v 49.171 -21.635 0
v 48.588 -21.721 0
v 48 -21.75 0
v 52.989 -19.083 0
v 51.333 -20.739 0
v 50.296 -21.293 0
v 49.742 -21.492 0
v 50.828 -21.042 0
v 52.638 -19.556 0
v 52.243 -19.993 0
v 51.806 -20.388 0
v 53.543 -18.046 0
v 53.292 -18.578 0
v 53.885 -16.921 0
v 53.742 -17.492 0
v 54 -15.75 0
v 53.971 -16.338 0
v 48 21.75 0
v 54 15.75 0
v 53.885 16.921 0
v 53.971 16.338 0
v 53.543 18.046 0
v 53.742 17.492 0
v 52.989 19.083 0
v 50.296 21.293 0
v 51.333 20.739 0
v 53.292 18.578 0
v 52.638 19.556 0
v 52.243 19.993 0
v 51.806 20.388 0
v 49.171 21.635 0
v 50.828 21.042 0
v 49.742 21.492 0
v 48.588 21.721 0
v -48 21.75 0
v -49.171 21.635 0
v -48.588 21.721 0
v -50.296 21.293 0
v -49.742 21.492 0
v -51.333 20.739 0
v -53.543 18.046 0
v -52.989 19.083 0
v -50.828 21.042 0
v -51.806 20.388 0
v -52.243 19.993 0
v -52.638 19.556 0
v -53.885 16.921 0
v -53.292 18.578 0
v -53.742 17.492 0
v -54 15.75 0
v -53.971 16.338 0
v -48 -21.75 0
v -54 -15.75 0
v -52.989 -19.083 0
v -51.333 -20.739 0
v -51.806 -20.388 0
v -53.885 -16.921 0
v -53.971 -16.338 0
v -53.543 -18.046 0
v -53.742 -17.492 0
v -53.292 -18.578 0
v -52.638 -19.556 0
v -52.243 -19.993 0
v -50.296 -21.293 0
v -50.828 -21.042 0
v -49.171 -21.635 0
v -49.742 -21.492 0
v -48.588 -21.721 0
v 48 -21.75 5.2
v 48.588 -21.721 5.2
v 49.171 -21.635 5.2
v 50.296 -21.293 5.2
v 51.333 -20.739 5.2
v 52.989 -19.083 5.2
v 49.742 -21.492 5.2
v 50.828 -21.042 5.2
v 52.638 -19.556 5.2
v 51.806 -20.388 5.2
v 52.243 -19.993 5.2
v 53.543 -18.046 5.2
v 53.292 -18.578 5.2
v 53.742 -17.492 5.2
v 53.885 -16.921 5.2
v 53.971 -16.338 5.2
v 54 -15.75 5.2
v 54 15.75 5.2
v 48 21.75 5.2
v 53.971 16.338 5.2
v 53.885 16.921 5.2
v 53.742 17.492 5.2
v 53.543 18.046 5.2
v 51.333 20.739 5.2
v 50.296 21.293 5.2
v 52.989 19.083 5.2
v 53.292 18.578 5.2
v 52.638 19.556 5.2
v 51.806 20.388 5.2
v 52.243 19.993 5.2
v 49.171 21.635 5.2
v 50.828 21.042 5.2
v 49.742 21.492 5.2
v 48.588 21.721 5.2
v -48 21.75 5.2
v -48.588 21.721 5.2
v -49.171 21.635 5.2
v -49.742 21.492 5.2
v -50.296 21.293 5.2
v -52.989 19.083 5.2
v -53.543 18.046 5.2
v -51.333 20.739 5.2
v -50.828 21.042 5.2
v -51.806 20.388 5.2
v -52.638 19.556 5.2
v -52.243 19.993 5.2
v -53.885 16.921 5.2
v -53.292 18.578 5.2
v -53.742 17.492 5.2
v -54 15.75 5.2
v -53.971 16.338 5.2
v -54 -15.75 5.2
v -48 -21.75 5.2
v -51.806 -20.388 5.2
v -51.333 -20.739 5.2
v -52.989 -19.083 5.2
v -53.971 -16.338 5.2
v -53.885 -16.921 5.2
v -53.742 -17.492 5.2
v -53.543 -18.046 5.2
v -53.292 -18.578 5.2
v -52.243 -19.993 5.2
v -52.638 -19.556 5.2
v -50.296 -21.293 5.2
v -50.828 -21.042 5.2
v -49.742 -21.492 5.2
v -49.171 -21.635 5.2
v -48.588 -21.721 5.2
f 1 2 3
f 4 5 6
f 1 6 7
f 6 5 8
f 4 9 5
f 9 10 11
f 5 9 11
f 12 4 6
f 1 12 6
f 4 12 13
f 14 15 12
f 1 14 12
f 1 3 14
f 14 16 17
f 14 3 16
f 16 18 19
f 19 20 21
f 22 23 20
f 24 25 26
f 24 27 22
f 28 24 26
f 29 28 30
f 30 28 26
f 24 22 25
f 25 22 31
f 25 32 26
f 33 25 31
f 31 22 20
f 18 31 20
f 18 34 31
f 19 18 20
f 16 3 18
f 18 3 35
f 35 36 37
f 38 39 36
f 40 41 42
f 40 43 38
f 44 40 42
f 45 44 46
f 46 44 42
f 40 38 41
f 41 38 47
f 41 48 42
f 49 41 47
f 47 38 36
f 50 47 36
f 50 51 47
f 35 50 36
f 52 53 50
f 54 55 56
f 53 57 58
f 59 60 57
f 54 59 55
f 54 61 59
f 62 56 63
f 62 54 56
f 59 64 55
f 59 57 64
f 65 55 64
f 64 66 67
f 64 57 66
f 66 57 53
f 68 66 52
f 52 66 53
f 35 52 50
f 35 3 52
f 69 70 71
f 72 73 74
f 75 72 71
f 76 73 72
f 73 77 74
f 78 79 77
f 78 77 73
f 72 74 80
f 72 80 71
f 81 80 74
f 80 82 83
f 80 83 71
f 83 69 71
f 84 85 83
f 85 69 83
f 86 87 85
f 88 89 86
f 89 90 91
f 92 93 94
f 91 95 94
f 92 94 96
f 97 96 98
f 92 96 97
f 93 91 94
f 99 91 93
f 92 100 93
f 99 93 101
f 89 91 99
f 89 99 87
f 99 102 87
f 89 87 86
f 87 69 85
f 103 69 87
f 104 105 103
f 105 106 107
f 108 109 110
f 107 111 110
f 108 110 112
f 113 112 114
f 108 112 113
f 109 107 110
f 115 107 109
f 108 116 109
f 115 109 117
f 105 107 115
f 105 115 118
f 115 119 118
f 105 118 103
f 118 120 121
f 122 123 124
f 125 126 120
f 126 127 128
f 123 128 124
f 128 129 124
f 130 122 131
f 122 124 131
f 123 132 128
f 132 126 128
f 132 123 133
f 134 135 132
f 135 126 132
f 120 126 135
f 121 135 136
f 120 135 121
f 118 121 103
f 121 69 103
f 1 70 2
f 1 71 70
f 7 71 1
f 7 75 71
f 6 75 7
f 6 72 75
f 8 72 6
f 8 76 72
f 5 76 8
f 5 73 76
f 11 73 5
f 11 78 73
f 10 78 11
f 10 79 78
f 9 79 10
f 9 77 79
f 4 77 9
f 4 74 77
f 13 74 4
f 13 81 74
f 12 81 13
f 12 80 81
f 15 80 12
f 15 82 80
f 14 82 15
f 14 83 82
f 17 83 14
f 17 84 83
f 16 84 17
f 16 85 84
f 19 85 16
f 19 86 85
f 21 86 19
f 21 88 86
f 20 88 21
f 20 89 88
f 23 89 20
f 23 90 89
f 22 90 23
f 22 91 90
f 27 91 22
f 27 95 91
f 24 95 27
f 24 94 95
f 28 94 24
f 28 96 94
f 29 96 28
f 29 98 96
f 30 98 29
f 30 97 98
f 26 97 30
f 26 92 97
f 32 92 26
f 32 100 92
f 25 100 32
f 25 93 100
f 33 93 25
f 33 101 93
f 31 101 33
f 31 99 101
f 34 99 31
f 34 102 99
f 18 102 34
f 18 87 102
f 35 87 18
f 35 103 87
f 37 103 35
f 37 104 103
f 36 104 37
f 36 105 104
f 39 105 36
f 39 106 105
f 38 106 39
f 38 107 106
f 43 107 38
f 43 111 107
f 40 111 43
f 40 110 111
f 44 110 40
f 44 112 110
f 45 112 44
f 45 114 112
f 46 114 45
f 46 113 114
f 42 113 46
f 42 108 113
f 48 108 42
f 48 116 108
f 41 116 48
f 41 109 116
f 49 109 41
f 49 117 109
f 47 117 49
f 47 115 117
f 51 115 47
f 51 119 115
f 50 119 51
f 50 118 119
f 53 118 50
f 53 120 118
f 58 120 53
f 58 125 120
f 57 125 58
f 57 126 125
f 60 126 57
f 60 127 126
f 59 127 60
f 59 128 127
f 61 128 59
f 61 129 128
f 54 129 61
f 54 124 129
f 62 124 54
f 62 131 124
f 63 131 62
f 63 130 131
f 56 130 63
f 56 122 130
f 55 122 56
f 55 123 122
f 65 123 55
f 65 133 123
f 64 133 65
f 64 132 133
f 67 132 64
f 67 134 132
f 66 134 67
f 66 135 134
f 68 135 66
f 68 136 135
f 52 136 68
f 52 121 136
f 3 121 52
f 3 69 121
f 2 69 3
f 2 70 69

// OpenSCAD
// Battery cover for AVOMeter Model 8 Mark III Multimeter.

// Parameters
length = 108;      // mm
width  = 43.5;     // mm
thickness = 5.2;   // mm
corner_radius = 6; // mm

$fn = 64; // smoothness of rounded corners

// Rounded rectangle module
module rounded_plate(l, w, h, r) {
    linear_extrude(height = h)
        offset(r = r)
            square([l - 2*r, w - 2*r], center = true);
}

// Create the plate
rounded_plate(length, width, thickness, corner_radius);
